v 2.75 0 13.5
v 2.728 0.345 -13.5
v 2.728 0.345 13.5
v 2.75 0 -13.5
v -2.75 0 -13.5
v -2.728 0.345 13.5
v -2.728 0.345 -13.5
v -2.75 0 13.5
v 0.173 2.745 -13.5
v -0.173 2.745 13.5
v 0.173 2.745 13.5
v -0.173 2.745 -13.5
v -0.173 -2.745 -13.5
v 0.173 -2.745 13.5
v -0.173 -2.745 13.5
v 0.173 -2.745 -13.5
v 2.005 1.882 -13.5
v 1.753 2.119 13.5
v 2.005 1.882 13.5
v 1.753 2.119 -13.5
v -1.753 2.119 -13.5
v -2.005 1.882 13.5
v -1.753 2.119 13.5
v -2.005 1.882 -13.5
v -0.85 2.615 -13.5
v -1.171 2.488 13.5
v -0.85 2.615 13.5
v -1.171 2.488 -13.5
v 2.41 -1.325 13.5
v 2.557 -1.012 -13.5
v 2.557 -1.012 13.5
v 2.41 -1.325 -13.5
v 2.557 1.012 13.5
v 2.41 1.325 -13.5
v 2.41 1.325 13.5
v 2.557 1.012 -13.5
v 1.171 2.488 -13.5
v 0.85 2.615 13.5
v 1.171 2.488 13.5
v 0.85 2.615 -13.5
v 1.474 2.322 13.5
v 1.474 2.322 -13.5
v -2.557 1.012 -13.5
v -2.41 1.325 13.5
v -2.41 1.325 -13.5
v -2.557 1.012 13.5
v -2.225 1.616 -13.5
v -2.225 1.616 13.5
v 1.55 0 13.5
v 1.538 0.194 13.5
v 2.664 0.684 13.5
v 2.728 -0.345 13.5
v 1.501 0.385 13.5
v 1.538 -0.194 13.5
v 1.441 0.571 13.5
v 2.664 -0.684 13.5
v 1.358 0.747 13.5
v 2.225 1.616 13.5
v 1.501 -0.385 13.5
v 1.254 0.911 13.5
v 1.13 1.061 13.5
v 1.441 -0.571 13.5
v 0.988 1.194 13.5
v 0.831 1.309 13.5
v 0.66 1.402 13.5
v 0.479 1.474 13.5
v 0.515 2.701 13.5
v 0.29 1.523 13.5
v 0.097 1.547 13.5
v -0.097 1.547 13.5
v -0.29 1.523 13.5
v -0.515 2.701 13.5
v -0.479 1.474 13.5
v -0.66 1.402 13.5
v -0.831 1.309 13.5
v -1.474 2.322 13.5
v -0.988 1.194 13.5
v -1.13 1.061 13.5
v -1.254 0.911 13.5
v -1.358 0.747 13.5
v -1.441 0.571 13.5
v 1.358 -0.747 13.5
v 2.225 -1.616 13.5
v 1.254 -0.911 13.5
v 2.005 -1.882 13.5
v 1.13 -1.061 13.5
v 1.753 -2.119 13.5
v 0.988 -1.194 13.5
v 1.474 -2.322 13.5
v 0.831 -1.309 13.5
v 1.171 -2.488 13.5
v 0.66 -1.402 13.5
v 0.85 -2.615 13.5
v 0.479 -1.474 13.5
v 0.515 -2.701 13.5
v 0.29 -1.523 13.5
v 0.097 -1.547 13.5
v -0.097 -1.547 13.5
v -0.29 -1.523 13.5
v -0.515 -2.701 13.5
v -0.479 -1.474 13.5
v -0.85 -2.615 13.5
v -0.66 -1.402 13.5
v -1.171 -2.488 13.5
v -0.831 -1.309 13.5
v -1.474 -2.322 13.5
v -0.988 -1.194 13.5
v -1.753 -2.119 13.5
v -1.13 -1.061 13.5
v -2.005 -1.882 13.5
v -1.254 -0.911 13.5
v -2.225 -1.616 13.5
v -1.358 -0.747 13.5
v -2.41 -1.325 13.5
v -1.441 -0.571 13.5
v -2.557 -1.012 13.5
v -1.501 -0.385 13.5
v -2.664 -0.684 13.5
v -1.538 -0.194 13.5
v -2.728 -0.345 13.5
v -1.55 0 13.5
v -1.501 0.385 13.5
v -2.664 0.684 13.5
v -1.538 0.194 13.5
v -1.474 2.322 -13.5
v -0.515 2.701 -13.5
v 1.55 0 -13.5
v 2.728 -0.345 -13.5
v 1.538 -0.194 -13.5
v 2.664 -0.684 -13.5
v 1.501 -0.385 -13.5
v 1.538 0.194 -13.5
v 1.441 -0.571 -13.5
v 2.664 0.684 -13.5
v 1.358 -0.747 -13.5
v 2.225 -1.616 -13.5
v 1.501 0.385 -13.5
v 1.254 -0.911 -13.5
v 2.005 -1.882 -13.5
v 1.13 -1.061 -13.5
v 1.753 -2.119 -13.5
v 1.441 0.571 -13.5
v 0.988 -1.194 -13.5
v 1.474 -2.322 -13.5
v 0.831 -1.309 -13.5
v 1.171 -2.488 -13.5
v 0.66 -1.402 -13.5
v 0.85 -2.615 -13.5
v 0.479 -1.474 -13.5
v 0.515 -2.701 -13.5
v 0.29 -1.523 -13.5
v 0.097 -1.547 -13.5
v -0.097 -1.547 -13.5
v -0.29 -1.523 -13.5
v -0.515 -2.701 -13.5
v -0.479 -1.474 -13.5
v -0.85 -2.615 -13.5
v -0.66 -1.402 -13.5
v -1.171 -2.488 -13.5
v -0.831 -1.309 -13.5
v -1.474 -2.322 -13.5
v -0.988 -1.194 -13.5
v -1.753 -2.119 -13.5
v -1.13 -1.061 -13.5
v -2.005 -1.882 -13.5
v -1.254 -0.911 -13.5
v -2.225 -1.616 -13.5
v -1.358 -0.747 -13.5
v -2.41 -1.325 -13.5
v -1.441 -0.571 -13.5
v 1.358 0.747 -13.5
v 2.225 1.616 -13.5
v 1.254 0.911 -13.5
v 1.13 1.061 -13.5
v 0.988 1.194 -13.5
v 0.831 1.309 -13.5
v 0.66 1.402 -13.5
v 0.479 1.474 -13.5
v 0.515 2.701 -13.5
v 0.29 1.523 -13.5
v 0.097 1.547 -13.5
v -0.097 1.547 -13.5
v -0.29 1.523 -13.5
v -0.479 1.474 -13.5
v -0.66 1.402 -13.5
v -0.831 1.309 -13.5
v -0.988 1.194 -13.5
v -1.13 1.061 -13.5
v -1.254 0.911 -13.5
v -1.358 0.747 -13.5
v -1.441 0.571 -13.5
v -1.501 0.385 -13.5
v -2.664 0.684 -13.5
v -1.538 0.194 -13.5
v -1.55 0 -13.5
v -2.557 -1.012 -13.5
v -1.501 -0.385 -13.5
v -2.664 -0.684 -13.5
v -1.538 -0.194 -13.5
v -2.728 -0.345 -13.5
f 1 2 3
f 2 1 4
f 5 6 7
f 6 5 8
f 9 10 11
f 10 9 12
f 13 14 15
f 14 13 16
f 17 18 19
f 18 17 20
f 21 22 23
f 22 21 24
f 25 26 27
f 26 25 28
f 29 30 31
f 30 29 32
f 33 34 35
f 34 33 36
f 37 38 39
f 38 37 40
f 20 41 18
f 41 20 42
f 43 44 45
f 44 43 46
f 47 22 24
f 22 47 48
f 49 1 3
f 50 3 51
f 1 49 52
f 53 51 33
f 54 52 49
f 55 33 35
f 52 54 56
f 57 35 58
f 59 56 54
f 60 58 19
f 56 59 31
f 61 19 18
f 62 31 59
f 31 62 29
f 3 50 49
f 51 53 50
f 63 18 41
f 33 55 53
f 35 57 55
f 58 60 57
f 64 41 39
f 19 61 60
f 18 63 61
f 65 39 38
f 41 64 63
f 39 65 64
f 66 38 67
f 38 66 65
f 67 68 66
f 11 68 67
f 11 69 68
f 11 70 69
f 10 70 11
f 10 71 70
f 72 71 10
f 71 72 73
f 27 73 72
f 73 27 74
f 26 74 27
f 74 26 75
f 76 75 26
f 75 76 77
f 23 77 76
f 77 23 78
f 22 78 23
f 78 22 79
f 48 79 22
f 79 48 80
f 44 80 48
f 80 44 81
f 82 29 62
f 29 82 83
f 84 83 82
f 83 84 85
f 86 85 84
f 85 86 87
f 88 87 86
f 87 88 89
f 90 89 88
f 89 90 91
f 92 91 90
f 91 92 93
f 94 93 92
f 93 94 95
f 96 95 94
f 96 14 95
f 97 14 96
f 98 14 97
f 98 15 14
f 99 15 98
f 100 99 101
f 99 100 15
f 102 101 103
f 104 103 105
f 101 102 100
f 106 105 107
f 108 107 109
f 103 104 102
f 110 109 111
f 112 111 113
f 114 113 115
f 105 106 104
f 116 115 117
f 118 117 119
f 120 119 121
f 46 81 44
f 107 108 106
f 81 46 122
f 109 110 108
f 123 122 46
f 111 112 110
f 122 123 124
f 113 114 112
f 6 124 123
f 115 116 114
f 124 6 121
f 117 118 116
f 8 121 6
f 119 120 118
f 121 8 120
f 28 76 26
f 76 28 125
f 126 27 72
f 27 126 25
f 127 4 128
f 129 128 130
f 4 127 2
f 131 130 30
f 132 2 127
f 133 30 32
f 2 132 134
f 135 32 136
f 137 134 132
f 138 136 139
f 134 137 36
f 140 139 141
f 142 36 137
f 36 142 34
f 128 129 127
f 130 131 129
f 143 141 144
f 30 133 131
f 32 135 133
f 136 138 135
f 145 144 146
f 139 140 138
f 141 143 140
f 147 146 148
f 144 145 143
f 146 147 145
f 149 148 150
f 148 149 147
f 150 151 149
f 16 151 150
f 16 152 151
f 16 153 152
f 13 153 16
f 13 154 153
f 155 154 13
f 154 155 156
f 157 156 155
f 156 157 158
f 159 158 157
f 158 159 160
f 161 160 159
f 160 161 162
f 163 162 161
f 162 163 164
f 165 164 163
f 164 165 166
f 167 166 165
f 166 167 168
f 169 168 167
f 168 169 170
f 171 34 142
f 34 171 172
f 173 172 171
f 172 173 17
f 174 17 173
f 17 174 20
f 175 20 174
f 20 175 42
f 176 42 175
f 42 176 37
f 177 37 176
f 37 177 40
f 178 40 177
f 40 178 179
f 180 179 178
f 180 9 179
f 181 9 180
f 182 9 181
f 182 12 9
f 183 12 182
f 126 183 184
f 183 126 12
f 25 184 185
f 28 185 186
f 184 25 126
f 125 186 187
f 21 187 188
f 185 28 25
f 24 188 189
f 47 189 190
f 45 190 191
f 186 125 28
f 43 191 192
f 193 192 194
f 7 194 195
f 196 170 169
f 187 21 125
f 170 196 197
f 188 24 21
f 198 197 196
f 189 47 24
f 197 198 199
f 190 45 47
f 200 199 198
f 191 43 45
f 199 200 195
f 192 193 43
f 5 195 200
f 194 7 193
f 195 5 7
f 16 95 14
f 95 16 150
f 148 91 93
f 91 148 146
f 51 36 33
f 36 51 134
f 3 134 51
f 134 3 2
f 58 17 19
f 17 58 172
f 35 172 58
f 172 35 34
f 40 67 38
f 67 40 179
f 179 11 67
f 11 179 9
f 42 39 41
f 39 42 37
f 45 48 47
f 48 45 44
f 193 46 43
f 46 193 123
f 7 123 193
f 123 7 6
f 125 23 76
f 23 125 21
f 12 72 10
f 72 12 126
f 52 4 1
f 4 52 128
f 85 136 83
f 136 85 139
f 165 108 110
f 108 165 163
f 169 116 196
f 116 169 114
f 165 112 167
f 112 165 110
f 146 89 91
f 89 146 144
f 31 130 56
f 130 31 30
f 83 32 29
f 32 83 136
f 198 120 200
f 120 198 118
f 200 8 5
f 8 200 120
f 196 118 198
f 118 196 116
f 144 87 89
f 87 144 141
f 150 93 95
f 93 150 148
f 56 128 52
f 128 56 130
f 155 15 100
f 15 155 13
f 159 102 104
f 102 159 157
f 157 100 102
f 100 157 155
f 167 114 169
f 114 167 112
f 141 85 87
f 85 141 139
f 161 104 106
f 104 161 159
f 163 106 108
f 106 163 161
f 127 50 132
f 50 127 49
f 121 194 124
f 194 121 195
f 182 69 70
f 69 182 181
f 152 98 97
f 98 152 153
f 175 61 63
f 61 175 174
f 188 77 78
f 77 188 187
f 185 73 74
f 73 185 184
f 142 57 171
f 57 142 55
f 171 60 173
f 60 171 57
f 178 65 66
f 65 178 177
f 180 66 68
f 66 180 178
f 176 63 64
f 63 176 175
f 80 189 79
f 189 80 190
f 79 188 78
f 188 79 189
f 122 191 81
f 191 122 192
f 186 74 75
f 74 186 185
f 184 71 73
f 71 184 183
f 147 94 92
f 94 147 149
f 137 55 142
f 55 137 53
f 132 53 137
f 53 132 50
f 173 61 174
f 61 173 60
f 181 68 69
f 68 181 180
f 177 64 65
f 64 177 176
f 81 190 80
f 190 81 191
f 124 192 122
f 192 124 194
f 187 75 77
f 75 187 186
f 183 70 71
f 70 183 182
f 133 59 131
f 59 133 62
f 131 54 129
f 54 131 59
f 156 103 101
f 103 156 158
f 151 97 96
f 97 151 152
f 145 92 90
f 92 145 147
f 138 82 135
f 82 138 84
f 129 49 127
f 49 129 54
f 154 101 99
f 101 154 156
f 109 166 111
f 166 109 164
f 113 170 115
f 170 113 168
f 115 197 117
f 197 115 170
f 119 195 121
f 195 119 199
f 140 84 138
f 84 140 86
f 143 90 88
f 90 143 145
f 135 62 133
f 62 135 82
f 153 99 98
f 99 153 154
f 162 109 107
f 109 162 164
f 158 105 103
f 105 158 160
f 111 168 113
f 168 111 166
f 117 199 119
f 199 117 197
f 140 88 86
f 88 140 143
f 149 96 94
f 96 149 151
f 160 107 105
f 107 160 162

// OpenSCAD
$fn = 50;


difference() {
	union() {
		translate(v = [0, 0, -13.5000000000]) {
			cylinder(h = 27, r = 2.7500000000);
		}
	}
	union() {
		translate(v = [0, 0, -100.0000000000]) {
			cylinder(h = 200, r = 1.5500000000);
		}
	}
}
